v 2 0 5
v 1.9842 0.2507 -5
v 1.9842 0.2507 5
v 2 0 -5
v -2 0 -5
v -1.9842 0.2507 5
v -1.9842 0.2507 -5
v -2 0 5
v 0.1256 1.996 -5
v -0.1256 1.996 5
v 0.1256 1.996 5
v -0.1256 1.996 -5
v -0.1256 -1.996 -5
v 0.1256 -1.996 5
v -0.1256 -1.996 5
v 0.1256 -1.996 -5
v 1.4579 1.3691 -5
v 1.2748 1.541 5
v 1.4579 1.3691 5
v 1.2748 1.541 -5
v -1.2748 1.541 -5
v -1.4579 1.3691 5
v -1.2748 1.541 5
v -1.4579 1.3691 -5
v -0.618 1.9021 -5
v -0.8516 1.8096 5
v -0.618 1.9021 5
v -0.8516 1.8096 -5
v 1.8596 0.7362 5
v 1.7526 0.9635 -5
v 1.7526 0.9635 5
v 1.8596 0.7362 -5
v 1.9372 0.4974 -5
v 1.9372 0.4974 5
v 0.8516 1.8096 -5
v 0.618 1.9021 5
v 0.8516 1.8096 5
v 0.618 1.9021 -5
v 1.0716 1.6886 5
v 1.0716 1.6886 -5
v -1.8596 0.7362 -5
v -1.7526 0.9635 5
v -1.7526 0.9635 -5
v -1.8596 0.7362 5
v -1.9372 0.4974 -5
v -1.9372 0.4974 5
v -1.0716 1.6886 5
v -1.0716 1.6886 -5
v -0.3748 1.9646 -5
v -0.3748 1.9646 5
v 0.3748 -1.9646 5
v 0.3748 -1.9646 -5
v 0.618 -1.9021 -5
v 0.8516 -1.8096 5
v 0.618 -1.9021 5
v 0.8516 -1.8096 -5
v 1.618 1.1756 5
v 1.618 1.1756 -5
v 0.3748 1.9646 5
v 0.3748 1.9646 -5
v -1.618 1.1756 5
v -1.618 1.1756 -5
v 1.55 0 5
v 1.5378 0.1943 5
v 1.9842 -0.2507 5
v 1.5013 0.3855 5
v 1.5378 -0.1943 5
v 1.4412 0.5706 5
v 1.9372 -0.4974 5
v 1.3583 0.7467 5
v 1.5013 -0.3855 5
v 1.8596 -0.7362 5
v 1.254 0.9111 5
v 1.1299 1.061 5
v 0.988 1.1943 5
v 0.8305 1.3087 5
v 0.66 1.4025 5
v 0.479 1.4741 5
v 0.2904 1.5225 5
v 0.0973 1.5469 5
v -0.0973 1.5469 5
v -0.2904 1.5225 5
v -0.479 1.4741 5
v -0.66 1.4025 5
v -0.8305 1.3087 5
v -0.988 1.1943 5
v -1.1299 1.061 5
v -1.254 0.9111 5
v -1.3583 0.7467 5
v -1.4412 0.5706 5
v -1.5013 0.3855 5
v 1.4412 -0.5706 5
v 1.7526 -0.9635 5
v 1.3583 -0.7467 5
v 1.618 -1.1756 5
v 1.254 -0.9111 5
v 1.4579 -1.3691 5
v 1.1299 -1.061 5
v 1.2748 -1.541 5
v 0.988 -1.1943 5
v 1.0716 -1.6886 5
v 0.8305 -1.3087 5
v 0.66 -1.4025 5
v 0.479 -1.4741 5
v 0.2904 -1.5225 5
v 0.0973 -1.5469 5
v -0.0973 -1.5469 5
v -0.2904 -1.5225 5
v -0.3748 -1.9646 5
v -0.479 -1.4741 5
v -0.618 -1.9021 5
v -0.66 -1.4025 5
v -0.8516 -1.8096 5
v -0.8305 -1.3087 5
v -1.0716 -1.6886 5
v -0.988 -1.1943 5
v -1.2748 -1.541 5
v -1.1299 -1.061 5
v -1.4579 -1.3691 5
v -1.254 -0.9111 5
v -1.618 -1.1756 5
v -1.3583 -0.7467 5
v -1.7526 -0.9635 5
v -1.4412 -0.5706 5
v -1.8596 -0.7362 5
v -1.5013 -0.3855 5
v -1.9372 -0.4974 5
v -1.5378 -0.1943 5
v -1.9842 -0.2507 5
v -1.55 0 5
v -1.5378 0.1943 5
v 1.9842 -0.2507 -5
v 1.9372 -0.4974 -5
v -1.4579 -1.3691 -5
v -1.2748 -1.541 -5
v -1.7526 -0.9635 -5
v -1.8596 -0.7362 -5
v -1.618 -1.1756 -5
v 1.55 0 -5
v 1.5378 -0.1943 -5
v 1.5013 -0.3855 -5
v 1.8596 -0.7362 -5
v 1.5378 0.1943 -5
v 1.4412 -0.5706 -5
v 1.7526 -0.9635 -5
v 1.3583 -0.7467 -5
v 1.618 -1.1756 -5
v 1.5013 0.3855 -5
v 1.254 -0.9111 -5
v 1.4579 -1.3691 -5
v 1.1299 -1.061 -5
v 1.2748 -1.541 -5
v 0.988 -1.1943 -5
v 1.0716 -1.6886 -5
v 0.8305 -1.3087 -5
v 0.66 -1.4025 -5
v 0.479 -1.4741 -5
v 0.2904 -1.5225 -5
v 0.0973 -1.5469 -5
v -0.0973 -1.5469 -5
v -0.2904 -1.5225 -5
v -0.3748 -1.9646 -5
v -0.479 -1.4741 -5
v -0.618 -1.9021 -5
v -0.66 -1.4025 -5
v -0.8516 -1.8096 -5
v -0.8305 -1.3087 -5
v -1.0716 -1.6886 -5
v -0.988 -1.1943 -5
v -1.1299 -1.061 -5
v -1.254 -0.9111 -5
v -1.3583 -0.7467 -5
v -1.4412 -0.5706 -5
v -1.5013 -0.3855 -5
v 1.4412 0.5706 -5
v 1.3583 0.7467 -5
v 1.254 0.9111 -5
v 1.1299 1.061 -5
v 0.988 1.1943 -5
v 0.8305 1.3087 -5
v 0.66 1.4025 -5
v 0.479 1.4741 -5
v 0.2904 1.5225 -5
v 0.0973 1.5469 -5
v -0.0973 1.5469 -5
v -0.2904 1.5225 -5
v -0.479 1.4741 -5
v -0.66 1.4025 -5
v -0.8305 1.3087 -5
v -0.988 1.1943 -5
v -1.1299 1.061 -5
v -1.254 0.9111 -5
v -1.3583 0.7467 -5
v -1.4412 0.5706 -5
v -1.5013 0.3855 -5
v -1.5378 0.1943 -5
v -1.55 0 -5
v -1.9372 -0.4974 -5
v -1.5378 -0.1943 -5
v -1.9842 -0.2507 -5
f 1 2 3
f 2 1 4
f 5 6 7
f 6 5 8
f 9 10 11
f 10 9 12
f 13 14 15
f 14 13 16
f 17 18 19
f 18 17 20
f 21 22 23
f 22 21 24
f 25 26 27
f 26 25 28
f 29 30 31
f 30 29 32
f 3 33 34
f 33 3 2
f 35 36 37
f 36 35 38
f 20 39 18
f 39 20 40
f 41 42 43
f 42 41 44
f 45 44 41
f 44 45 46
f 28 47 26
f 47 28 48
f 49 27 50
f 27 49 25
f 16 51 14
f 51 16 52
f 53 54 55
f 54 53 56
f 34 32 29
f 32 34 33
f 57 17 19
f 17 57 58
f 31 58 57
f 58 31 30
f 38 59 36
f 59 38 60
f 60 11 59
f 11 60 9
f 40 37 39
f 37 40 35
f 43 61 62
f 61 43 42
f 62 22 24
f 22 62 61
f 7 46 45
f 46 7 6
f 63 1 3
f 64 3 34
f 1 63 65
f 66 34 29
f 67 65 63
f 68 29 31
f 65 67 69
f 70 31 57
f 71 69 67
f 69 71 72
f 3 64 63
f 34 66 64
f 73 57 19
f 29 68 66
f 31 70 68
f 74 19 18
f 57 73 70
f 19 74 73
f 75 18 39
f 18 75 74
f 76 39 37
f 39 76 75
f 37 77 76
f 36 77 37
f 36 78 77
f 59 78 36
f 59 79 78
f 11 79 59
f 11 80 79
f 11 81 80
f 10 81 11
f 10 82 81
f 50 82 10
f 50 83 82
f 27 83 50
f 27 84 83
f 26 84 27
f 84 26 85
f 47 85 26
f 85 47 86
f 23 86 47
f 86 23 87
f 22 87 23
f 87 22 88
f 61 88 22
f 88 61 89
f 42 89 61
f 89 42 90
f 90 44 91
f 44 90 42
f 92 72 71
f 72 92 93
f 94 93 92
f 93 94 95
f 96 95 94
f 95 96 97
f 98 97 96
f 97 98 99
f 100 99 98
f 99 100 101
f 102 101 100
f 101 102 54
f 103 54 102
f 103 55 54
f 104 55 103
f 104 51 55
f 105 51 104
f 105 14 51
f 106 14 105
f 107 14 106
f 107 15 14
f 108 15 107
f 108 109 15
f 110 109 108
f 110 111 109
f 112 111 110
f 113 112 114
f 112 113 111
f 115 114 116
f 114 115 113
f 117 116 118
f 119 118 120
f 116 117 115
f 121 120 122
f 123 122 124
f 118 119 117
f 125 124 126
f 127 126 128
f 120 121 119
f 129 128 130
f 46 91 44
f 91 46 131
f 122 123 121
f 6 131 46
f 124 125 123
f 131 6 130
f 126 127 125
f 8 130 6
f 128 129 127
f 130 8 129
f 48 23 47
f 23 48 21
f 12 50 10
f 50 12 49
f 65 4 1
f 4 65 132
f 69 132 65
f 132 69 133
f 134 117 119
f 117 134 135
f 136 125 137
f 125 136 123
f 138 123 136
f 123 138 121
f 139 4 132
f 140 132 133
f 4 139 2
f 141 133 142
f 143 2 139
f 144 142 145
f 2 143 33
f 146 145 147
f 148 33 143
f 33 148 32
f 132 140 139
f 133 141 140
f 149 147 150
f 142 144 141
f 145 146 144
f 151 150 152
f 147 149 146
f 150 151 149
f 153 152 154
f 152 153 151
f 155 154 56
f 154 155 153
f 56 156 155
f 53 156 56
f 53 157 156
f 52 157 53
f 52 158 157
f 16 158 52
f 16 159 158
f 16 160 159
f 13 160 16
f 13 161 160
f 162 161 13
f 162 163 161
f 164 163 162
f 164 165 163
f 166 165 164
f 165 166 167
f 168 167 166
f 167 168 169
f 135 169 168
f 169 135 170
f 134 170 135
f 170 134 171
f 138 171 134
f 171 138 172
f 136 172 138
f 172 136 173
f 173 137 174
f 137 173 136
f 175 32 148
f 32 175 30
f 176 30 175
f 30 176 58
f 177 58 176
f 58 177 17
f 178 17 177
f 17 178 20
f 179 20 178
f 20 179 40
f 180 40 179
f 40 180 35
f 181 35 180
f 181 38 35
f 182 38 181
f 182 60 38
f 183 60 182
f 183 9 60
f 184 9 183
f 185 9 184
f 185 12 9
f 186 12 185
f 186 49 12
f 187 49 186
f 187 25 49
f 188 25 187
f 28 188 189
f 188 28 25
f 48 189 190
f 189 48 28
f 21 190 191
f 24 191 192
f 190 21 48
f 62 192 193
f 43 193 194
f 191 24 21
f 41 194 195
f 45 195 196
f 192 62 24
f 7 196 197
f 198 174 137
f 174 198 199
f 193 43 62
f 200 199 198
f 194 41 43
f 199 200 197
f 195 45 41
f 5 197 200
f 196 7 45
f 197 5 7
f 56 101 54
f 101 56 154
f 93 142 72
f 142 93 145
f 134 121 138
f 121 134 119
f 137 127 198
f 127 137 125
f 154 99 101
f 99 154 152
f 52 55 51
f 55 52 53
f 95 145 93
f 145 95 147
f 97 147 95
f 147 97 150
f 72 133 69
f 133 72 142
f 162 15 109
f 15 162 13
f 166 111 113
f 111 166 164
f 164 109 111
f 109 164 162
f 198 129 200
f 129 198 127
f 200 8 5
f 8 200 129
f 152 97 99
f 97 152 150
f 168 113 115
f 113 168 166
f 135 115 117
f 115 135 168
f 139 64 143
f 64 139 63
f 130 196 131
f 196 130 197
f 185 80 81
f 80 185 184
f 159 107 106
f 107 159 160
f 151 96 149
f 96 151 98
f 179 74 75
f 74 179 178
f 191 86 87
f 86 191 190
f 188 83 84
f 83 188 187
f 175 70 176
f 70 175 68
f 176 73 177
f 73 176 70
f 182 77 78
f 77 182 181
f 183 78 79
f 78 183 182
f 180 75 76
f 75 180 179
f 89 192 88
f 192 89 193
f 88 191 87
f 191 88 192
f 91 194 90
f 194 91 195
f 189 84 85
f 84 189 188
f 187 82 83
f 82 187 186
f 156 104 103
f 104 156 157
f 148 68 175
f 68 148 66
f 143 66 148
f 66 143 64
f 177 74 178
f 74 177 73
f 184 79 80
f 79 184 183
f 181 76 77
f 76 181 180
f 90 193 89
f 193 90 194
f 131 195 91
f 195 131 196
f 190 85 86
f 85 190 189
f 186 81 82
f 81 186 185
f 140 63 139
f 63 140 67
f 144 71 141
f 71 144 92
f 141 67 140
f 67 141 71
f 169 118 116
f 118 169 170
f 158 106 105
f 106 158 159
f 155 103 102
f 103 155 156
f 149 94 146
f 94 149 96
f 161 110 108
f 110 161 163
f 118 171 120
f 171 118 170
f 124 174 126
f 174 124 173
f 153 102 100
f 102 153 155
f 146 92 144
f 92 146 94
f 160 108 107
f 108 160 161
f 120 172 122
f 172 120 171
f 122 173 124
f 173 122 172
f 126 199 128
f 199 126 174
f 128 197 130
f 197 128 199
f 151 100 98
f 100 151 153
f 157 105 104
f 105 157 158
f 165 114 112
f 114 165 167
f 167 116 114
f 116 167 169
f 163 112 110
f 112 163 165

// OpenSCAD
$fn = 50;


difference() {
	union() {
		translate(v = [0, 0, -5.0000000000]) {
			cylinder(h = 10, r = 2.0000000000);
		}
	}
	union() {
		translate(v = [0, 0, -100.0000000000]) {
			cylinder(h = 200, r = 1.5500000000);
		}
	}
}
